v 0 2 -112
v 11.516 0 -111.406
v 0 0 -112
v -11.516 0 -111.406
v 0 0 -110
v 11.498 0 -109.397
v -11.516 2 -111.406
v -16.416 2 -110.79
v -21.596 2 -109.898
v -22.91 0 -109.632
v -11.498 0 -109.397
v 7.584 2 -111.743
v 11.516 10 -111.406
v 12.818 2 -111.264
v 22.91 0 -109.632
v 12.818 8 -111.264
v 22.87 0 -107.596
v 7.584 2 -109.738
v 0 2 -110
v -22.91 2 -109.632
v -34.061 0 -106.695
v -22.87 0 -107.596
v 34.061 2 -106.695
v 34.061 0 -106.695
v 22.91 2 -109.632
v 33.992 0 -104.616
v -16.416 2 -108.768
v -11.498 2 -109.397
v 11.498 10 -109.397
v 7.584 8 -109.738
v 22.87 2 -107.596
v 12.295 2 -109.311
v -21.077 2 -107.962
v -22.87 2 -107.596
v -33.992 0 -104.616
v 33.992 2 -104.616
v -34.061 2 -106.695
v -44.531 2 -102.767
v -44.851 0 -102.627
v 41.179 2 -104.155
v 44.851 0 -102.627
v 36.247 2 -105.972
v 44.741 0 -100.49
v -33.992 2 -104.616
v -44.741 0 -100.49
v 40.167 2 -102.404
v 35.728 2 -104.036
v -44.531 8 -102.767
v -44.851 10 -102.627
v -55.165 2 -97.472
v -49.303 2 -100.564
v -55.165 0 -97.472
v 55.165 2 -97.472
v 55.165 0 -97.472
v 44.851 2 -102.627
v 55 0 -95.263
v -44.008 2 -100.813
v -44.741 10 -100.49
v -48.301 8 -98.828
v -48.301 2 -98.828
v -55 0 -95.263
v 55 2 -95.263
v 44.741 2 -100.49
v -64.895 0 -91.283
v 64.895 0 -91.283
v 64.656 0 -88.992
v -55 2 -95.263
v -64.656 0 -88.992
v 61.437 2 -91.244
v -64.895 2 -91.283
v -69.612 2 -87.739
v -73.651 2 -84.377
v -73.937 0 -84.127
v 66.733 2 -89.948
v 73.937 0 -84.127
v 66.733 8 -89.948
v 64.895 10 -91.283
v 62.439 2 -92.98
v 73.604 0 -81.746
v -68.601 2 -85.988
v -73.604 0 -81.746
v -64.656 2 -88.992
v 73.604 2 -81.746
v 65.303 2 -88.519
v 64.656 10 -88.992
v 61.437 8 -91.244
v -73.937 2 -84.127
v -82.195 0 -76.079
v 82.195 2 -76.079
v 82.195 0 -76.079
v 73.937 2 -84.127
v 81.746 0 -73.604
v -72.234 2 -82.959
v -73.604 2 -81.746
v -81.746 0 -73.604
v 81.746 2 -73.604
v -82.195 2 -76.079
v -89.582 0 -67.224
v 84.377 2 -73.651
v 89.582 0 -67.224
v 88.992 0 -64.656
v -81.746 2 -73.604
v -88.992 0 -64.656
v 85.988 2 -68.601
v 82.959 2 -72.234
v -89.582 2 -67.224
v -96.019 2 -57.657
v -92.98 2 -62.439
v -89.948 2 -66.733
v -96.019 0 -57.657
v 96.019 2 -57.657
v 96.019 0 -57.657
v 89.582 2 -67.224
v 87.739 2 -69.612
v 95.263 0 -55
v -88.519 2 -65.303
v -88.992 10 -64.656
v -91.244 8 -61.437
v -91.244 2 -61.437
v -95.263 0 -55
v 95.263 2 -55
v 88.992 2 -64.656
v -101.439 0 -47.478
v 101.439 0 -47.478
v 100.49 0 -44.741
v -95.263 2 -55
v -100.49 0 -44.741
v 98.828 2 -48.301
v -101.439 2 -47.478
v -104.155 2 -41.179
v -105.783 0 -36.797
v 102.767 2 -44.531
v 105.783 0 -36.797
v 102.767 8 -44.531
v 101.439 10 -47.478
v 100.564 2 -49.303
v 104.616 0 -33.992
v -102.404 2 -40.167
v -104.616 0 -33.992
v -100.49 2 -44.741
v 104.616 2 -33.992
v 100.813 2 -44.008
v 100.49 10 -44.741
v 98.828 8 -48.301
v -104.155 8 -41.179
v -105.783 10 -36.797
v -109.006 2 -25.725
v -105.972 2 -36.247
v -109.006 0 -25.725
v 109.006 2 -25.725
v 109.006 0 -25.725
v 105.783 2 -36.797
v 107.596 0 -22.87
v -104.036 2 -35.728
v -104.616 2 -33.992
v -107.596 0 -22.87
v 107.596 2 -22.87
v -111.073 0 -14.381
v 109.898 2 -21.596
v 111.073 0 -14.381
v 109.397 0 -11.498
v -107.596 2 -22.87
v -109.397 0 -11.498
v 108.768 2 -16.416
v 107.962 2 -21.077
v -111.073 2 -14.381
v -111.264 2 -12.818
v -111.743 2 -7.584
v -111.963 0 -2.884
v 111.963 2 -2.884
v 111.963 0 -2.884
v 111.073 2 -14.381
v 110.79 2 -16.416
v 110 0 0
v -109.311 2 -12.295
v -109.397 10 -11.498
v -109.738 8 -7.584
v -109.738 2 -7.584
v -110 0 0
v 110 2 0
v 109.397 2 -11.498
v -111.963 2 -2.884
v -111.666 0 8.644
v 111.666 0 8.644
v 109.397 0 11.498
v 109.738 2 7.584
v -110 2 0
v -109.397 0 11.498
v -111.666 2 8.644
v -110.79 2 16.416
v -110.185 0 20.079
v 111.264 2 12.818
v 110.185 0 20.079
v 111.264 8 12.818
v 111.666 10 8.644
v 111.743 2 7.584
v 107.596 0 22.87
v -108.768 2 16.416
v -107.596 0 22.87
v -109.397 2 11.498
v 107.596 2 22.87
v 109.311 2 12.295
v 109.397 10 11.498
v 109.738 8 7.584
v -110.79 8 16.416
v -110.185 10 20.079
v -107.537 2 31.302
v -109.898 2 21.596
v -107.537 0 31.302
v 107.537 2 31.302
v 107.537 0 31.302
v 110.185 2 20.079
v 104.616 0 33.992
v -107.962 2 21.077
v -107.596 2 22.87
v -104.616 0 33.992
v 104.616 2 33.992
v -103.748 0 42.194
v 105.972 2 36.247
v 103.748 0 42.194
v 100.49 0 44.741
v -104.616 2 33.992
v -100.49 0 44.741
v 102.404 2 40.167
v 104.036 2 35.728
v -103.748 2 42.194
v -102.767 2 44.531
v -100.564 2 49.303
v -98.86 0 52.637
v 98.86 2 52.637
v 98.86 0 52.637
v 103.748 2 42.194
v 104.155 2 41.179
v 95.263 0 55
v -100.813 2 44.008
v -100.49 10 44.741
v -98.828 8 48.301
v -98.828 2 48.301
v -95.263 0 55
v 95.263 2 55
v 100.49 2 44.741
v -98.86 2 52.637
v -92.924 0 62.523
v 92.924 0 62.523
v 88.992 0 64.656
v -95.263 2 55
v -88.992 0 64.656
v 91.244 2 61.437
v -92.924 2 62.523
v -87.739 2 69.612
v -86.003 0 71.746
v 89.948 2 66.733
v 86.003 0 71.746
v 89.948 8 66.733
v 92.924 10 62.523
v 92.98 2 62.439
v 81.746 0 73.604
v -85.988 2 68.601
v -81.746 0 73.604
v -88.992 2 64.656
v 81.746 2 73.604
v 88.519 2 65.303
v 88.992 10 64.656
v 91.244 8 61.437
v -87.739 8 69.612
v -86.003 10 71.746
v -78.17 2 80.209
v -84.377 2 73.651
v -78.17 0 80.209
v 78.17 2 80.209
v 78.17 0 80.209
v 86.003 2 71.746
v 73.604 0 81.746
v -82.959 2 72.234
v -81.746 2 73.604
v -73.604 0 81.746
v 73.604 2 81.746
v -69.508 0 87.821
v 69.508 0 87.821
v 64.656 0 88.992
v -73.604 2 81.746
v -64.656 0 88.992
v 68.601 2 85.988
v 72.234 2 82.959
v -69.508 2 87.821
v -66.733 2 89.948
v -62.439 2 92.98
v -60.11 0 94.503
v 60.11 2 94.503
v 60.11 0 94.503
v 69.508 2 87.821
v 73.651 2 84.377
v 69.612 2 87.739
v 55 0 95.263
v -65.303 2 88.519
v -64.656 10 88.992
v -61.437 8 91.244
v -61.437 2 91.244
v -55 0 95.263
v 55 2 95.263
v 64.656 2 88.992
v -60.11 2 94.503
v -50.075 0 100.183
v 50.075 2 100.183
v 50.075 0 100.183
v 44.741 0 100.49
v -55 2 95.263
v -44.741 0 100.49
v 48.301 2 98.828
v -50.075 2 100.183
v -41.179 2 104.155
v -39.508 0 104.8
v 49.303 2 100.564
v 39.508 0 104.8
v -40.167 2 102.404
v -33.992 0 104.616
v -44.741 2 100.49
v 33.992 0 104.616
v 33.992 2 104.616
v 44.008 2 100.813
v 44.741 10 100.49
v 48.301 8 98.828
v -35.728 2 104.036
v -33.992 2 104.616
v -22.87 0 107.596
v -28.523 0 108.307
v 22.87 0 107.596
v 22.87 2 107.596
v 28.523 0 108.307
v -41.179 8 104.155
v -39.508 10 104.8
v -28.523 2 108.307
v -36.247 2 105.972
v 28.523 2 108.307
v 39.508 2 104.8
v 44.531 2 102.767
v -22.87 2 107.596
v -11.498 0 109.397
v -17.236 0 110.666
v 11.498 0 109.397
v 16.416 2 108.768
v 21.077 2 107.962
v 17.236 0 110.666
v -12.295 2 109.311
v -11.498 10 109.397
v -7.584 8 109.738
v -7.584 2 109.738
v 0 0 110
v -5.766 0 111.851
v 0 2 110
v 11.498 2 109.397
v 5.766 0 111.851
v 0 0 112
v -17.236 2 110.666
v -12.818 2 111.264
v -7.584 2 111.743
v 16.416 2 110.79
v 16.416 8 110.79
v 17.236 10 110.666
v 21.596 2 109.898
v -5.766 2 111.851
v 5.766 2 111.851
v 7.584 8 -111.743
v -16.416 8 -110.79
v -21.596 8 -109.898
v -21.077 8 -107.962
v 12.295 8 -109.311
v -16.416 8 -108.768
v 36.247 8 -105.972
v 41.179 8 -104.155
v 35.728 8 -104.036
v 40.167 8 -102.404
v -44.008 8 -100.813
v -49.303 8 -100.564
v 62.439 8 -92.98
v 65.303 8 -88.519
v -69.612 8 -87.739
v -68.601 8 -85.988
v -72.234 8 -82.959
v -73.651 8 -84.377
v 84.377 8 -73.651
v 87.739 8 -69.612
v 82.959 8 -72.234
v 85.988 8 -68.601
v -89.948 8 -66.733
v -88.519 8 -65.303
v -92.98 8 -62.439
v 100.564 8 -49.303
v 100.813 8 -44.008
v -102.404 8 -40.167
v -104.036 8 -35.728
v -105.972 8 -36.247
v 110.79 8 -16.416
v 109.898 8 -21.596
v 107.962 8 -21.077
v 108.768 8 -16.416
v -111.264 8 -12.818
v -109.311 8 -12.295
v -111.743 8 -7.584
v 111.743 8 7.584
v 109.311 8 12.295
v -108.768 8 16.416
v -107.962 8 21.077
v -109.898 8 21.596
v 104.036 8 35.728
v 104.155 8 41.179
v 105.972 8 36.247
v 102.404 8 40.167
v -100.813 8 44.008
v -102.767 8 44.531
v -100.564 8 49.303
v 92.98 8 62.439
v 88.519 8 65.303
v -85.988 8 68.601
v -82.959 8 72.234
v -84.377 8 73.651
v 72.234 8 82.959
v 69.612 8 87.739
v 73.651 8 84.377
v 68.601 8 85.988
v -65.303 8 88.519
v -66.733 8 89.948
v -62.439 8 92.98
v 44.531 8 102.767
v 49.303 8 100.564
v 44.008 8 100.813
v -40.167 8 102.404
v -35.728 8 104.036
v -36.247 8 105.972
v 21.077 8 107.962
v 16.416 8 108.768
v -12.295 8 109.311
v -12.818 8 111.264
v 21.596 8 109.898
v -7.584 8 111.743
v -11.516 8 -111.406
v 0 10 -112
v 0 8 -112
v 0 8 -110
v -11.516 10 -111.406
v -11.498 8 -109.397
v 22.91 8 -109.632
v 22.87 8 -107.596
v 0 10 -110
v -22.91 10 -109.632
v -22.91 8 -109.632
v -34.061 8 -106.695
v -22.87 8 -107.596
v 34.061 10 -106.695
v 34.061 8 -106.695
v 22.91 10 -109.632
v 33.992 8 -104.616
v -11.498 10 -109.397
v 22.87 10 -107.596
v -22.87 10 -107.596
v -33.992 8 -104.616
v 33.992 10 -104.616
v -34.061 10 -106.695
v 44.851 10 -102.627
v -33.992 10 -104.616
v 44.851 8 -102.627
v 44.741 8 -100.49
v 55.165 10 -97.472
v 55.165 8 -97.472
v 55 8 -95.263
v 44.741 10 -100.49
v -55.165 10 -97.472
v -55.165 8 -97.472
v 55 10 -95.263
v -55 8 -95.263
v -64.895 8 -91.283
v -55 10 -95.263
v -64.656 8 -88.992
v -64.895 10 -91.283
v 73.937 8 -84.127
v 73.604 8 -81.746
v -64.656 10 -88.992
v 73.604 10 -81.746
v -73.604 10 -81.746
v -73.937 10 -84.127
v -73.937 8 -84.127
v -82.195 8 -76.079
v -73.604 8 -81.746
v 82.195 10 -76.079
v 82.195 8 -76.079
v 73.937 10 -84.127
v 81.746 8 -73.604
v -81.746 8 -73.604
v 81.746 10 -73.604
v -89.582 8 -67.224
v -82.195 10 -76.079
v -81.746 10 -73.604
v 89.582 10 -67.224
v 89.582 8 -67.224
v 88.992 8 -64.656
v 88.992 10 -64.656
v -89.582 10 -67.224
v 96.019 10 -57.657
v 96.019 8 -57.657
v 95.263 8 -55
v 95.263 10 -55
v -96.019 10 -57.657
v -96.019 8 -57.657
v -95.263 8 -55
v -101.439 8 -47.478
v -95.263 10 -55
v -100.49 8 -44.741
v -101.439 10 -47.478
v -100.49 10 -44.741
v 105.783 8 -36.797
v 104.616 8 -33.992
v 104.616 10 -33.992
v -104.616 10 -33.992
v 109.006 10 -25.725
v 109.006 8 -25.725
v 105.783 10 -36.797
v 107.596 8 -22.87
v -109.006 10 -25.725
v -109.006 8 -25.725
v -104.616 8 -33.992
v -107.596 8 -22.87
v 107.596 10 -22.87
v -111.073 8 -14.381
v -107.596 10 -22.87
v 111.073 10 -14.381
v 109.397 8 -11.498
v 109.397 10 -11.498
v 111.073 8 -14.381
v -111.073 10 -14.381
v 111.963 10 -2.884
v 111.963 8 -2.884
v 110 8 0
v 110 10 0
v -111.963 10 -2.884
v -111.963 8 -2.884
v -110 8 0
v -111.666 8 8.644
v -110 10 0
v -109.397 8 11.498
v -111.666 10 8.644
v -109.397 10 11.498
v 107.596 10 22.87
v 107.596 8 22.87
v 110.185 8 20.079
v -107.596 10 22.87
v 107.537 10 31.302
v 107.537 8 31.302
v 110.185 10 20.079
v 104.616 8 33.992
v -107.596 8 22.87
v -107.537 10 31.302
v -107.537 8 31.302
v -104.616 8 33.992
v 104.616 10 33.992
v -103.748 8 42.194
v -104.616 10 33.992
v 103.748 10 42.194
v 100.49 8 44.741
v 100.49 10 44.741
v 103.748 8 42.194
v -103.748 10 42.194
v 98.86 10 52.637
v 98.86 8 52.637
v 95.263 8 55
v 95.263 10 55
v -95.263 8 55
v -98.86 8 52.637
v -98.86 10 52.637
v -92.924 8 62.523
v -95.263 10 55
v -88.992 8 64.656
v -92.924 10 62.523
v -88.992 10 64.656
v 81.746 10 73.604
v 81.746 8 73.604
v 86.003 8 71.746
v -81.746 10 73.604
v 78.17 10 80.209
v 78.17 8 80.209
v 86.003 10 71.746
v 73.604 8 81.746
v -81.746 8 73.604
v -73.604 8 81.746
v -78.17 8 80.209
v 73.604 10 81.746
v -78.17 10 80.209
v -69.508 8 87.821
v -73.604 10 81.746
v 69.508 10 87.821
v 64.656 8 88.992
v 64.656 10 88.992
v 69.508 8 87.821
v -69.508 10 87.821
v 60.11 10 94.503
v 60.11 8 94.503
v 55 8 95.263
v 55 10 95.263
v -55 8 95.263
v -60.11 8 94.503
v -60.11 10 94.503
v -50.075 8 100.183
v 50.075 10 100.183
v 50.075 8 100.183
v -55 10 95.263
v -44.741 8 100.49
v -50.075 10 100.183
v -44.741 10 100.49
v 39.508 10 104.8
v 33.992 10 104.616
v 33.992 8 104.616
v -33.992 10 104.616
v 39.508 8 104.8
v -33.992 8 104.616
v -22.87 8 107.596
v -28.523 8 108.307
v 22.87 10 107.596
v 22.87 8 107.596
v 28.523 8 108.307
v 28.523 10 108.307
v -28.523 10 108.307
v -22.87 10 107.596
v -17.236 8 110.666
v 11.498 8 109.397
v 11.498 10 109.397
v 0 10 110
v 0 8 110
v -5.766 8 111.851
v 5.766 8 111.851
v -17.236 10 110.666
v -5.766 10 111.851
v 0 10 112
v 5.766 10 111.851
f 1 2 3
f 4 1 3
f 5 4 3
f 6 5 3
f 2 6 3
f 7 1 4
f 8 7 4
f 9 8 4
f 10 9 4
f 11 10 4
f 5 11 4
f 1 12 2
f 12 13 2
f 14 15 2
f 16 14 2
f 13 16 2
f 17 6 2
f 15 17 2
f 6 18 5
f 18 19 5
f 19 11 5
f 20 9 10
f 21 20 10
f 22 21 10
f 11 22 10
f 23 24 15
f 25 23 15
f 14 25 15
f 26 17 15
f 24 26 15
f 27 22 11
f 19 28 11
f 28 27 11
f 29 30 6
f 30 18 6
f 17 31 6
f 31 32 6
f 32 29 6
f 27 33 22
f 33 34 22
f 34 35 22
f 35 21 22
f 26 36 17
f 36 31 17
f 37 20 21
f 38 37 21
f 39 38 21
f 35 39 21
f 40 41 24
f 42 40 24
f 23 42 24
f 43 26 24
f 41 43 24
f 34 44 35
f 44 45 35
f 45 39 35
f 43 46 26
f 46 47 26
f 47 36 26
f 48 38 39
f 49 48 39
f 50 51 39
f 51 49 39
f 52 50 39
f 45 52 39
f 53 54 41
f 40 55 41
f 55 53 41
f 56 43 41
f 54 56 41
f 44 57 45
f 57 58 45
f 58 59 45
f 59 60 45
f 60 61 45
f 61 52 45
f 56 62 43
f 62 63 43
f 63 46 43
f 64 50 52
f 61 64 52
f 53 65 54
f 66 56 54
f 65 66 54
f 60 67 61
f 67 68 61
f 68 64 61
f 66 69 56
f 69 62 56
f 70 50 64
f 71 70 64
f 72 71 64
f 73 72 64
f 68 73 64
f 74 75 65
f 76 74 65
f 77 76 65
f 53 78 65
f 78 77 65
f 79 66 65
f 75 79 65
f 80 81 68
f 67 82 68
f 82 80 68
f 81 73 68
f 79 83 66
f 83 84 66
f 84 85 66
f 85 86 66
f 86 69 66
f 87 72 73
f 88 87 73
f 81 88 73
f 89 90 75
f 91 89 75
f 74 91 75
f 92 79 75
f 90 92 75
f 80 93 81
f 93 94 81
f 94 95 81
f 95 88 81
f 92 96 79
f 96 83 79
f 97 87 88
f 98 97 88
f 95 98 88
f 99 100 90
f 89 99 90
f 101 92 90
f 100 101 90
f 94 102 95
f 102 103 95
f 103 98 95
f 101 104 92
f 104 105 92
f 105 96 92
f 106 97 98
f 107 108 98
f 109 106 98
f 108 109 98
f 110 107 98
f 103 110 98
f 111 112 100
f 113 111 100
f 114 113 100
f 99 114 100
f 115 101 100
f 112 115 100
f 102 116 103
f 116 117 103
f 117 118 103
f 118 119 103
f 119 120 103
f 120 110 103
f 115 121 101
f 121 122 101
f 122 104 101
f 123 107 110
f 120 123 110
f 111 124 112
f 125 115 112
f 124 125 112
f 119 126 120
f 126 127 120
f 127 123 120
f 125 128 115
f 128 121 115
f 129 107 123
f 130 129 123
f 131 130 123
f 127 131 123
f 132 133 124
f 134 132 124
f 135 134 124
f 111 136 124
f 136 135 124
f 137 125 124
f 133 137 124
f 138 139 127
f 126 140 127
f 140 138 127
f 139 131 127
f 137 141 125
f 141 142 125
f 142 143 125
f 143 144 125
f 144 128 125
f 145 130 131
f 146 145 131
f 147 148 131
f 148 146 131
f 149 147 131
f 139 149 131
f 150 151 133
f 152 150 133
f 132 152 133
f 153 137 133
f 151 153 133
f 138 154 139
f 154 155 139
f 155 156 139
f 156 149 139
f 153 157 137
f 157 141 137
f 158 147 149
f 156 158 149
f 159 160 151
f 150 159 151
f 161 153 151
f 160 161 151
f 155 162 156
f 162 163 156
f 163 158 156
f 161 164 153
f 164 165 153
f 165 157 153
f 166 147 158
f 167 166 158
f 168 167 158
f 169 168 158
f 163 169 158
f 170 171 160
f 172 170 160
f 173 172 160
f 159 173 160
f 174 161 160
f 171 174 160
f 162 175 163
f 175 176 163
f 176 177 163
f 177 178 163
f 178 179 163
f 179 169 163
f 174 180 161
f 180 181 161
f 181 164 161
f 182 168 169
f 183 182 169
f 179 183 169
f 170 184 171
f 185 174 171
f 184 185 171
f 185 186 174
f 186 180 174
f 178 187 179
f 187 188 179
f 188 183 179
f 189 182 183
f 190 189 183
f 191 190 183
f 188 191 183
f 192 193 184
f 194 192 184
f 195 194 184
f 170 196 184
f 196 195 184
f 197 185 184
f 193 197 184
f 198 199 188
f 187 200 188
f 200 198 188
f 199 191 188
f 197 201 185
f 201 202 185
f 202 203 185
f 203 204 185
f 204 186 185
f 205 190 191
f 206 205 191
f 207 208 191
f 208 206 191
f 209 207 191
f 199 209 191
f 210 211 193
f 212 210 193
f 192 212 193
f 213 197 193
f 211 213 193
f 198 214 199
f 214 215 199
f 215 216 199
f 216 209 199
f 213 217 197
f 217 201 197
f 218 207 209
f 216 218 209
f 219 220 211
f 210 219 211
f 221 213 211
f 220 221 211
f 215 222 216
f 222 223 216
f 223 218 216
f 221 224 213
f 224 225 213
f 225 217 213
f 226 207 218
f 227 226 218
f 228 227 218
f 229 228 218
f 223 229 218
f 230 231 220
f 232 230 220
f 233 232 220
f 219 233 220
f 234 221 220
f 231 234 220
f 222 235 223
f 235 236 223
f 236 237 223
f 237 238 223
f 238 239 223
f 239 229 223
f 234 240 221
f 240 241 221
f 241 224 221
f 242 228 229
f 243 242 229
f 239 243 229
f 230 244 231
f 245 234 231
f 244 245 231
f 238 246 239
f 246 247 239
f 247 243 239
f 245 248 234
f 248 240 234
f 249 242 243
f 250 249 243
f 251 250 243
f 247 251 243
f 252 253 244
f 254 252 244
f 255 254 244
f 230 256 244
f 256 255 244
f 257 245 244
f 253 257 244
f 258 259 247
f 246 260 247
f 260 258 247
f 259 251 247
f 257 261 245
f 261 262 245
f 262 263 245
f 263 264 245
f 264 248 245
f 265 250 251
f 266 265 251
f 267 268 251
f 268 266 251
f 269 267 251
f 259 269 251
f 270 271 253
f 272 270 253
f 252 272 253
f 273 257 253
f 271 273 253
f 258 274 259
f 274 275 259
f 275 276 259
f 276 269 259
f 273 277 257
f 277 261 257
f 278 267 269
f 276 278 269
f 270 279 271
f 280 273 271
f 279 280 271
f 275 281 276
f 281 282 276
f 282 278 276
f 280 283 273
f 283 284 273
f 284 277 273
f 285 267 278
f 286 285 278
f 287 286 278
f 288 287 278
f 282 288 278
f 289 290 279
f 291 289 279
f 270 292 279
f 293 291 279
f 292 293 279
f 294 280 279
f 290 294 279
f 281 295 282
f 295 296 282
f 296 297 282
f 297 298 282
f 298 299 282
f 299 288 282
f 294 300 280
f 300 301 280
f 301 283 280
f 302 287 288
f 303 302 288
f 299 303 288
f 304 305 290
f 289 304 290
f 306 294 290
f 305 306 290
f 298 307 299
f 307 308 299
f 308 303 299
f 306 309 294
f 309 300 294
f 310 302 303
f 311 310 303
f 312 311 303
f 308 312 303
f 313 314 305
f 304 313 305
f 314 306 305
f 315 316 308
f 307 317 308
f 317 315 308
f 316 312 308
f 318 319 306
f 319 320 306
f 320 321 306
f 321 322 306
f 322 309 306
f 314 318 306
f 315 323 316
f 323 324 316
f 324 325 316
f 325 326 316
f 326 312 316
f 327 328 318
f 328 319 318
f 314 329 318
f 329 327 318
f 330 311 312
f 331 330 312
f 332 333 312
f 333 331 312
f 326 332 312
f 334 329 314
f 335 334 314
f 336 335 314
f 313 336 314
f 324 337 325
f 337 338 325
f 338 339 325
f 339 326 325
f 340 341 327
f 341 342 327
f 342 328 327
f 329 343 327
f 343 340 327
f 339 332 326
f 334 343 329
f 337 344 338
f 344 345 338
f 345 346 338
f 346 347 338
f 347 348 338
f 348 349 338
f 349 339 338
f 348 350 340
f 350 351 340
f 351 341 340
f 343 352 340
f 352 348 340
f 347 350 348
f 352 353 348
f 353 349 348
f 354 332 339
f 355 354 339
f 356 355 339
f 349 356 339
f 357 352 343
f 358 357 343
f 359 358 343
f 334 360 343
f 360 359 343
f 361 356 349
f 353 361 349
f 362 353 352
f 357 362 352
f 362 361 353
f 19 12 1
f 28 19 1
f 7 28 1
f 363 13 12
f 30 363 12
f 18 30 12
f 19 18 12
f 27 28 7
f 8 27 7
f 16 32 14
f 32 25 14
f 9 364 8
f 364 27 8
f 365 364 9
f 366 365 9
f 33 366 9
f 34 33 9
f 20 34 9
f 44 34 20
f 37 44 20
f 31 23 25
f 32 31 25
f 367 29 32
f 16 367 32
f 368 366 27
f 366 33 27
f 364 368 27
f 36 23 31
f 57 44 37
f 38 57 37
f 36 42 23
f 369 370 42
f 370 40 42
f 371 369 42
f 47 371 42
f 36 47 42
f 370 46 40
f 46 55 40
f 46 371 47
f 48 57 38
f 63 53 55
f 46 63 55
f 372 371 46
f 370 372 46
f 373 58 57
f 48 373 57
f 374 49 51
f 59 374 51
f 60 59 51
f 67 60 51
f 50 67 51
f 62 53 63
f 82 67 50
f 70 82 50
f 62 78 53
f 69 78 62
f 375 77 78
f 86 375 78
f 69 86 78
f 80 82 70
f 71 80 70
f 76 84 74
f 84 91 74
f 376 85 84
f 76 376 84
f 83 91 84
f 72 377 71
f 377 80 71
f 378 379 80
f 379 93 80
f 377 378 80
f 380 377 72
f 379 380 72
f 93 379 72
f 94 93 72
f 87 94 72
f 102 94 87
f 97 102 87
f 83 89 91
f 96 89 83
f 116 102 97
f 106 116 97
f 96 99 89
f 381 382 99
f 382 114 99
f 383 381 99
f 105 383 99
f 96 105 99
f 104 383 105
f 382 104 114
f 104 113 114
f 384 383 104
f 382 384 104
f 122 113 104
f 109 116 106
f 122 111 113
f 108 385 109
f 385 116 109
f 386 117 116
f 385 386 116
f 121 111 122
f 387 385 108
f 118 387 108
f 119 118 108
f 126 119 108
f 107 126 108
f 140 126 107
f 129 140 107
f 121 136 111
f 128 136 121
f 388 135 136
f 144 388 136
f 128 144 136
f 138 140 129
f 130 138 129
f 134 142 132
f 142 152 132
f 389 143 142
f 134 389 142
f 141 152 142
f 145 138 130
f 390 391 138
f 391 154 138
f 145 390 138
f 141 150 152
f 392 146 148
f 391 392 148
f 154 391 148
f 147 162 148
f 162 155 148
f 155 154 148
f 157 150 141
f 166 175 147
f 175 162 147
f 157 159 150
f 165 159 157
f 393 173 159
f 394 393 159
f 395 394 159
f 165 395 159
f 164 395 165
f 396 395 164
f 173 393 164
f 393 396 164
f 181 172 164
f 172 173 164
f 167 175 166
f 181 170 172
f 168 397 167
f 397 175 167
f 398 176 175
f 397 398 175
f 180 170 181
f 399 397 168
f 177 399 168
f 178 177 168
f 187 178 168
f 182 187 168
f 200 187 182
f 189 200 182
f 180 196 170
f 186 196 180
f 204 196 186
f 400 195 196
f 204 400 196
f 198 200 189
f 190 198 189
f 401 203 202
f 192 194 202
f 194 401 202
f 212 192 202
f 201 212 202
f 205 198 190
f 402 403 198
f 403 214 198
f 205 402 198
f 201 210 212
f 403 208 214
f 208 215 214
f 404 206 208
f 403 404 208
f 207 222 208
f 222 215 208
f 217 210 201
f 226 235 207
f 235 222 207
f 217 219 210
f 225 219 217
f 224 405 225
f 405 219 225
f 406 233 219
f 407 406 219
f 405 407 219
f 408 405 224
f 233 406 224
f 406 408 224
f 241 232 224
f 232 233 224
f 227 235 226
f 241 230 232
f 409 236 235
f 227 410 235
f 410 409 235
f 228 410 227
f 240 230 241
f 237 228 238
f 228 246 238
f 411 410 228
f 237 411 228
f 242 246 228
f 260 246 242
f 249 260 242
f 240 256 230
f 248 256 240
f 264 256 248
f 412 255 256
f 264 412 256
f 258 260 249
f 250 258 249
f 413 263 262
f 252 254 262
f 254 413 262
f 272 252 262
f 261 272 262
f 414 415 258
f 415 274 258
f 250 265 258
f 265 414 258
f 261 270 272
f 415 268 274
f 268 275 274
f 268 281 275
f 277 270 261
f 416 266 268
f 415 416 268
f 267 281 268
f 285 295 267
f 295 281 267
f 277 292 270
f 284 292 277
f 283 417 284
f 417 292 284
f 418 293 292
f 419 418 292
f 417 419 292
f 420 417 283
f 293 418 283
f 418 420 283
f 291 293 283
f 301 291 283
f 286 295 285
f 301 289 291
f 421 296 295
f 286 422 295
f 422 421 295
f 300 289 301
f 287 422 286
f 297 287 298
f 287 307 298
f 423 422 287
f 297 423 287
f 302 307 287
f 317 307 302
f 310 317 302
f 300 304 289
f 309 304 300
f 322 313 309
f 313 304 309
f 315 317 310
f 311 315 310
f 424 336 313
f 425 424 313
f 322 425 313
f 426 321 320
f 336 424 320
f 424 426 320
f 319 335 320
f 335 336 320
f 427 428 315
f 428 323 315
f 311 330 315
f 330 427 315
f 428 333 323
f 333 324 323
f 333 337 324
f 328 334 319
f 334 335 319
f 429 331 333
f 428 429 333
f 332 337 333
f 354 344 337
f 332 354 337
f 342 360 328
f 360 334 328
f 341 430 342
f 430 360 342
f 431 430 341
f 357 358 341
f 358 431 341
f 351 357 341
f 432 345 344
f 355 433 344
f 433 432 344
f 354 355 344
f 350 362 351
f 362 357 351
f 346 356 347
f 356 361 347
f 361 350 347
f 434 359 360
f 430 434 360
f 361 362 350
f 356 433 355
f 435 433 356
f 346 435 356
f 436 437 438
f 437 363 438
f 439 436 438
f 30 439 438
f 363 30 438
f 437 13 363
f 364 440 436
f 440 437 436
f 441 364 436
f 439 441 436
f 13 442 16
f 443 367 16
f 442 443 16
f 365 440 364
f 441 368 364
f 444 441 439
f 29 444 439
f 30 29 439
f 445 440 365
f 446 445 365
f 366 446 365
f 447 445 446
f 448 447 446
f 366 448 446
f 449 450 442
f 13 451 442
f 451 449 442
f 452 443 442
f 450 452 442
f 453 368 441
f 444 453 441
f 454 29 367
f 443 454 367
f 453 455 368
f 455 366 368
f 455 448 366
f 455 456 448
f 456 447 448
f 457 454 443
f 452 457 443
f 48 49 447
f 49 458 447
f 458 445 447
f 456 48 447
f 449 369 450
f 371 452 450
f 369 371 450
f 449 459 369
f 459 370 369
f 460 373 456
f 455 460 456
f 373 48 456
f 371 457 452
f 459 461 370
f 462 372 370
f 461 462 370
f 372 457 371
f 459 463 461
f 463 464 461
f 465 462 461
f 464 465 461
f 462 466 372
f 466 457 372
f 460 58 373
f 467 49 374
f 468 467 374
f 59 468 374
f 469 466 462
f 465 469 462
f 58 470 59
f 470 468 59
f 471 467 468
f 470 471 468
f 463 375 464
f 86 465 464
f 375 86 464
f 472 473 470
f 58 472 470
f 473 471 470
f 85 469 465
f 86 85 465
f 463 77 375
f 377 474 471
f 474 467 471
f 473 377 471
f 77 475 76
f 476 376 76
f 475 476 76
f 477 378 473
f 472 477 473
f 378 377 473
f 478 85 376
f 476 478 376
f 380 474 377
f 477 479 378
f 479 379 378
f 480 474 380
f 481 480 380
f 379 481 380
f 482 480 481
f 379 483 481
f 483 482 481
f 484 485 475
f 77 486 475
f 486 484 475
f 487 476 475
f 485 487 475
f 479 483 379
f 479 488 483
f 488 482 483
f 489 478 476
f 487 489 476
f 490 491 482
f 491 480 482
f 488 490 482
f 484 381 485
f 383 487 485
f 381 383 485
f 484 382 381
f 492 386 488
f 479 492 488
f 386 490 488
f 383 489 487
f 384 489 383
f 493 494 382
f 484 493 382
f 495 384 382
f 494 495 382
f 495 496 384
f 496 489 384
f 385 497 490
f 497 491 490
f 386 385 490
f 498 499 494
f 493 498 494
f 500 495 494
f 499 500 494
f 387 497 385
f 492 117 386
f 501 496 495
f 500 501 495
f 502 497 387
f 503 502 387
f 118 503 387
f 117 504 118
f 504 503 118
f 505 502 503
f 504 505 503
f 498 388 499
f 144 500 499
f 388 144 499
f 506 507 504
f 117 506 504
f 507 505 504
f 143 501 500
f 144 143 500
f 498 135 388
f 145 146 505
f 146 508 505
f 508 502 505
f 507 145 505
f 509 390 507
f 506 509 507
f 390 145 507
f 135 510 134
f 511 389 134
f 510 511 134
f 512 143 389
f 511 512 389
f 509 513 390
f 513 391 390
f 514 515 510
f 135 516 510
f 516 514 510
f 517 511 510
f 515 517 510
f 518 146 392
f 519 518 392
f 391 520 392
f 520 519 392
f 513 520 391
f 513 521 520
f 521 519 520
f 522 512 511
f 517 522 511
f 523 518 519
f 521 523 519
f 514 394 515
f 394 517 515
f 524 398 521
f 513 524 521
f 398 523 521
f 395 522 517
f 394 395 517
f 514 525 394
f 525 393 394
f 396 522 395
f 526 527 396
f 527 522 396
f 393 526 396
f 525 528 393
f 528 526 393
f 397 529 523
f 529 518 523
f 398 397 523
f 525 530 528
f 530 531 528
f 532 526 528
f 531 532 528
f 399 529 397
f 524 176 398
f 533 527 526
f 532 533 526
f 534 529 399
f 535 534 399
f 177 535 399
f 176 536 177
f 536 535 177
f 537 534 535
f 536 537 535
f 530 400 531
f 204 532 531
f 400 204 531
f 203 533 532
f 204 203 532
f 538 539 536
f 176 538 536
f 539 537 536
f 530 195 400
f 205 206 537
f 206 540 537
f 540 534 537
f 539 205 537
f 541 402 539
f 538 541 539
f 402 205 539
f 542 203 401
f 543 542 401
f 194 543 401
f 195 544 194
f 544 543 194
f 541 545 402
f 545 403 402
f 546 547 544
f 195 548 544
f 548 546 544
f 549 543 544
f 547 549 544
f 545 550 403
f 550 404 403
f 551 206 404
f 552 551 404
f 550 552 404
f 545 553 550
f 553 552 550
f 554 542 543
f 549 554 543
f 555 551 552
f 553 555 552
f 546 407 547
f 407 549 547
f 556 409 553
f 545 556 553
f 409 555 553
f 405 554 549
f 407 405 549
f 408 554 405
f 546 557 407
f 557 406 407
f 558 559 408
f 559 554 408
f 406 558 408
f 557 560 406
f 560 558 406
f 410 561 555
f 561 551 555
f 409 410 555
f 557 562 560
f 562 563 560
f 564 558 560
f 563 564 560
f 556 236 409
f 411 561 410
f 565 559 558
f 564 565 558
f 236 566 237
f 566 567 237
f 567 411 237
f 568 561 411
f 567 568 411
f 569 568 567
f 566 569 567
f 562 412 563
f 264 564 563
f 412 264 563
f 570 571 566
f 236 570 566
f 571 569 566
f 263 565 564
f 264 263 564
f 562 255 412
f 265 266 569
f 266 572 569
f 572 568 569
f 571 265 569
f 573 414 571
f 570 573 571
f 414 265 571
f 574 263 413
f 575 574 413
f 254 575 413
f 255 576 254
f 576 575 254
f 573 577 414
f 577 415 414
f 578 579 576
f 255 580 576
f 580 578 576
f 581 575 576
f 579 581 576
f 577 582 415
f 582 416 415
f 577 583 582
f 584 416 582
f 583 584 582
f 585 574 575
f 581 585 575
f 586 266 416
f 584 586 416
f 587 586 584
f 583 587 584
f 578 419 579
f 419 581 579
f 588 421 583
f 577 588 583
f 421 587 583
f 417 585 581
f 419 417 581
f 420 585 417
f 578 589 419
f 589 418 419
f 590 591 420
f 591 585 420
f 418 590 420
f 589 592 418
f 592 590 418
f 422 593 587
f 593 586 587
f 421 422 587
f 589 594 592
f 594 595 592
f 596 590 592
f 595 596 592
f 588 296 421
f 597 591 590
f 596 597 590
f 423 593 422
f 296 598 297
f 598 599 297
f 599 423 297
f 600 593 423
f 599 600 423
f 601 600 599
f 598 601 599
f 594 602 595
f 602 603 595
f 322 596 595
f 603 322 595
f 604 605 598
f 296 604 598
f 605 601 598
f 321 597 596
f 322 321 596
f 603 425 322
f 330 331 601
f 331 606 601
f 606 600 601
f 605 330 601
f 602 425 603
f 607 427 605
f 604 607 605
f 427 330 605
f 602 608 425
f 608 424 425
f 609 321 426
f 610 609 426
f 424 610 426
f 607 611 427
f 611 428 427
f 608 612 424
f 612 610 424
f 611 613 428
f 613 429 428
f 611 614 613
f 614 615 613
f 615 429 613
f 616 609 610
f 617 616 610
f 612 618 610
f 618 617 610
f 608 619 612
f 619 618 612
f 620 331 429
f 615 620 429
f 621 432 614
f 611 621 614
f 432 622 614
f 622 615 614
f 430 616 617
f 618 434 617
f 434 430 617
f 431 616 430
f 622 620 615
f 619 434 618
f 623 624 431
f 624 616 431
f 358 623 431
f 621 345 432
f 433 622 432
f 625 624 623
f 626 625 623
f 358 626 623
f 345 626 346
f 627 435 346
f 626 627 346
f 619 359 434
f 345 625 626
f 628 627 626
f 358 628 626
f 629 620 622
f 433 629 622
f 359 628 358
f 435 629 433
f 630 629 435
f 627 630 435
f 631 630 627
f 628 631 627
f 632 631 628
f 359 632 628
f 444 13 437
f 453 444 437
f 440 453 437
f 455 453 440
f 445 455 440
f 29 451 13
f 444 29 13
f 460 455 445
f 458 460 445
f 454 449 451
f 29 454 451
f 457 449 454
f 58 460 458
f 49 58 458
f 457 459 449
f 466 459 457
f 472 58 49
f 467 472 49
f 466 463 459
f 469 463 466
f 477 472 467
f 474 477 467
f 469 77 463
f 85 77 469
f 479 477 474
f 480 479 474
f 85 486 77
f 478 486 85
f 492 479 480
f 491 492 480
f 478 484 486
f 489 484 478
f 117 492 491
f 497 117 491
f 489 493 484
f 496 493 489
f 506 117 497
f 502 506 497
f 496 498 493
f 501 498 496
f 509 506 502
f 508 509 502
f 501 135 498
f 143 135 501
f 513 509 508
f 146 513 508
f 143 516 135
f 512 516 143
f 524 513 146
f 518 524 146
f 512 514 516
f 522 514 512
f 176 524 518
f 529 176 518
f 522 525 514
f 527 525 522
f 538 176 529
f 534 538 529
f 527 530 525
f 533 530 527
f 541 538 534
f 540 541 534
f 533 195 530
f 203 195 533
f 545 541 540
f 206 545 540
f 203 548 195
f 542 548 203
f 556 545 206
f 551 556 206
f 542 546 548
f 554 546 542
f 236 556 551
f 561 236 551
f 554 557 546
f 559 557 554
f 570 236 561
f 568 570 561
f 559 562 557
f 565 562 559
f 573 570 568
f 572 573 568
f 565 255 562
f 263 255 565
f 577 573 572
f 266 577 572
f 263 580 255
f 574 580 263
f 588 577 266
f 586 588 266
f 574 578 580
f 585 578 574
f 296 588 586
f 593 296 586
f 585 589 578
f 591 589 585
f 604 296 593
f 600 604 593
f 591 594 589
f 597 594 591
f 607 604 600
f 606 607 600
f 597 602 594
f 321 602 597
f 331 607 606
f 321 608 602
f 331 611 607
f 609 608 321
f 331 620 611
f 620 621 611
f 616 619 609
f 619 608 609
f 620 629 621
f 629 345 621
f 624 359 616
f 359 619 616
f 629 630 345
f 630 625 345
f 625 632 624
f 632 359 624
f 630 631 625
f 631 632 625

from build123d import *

# Parameters (mm, degrees)
SKETCH1_R           = 112
SKETCH1_R_2         = 110
BOSS_EXTRUDE1_DEPTH = 10
SKETCH2_W           = 24
SKETCH2_H           = 6
CUT_EXTRUDE1_DEPTH  = 159.707277716
CIRPATTERN1_COUNT   = 24


with BuildPart() as part:
    # Sketch1 → Boss-Extrude1 (new body)
    with BuildSketch(Plane(origin=(0, 0, 0), x_dir=(1, 0, 0), z_dir=(0, 1, 0))):
        Circle(SKETCH1_R)
        Circle(SKETCH1_R_2, mode=Mode.SUBTRACT)
    extrude(amount=BOSS_EXTRUDE1_DEPTH)

    # Sketch2 → Cut-Extrude1 (cut, through all)
    with BuildSketch(Plane.XY):
        with Locations((-4.41590823, 5)):
            Rectangle(SKETCH2_W, SKETCH2_H)
    cut_extrude1 = extrude(amount=-CUT_EXTRUDE1_DEPTH, mode=Mode.SUBTRACT)

    # CirPattern1: Cut-Extrude1 ×24 about axis
    cirpattern1_axis = Axis((0, 10, 0), (0, -1, 0))
    for i in range(1, CIRPATTERN1_COUNT):
        add(cut_extrude1.rotate(cirpattern1_axis, i * 360 / CIRPATTERN1_COUNT), mode=Mode.SUBTRACT)


solid = part.part
